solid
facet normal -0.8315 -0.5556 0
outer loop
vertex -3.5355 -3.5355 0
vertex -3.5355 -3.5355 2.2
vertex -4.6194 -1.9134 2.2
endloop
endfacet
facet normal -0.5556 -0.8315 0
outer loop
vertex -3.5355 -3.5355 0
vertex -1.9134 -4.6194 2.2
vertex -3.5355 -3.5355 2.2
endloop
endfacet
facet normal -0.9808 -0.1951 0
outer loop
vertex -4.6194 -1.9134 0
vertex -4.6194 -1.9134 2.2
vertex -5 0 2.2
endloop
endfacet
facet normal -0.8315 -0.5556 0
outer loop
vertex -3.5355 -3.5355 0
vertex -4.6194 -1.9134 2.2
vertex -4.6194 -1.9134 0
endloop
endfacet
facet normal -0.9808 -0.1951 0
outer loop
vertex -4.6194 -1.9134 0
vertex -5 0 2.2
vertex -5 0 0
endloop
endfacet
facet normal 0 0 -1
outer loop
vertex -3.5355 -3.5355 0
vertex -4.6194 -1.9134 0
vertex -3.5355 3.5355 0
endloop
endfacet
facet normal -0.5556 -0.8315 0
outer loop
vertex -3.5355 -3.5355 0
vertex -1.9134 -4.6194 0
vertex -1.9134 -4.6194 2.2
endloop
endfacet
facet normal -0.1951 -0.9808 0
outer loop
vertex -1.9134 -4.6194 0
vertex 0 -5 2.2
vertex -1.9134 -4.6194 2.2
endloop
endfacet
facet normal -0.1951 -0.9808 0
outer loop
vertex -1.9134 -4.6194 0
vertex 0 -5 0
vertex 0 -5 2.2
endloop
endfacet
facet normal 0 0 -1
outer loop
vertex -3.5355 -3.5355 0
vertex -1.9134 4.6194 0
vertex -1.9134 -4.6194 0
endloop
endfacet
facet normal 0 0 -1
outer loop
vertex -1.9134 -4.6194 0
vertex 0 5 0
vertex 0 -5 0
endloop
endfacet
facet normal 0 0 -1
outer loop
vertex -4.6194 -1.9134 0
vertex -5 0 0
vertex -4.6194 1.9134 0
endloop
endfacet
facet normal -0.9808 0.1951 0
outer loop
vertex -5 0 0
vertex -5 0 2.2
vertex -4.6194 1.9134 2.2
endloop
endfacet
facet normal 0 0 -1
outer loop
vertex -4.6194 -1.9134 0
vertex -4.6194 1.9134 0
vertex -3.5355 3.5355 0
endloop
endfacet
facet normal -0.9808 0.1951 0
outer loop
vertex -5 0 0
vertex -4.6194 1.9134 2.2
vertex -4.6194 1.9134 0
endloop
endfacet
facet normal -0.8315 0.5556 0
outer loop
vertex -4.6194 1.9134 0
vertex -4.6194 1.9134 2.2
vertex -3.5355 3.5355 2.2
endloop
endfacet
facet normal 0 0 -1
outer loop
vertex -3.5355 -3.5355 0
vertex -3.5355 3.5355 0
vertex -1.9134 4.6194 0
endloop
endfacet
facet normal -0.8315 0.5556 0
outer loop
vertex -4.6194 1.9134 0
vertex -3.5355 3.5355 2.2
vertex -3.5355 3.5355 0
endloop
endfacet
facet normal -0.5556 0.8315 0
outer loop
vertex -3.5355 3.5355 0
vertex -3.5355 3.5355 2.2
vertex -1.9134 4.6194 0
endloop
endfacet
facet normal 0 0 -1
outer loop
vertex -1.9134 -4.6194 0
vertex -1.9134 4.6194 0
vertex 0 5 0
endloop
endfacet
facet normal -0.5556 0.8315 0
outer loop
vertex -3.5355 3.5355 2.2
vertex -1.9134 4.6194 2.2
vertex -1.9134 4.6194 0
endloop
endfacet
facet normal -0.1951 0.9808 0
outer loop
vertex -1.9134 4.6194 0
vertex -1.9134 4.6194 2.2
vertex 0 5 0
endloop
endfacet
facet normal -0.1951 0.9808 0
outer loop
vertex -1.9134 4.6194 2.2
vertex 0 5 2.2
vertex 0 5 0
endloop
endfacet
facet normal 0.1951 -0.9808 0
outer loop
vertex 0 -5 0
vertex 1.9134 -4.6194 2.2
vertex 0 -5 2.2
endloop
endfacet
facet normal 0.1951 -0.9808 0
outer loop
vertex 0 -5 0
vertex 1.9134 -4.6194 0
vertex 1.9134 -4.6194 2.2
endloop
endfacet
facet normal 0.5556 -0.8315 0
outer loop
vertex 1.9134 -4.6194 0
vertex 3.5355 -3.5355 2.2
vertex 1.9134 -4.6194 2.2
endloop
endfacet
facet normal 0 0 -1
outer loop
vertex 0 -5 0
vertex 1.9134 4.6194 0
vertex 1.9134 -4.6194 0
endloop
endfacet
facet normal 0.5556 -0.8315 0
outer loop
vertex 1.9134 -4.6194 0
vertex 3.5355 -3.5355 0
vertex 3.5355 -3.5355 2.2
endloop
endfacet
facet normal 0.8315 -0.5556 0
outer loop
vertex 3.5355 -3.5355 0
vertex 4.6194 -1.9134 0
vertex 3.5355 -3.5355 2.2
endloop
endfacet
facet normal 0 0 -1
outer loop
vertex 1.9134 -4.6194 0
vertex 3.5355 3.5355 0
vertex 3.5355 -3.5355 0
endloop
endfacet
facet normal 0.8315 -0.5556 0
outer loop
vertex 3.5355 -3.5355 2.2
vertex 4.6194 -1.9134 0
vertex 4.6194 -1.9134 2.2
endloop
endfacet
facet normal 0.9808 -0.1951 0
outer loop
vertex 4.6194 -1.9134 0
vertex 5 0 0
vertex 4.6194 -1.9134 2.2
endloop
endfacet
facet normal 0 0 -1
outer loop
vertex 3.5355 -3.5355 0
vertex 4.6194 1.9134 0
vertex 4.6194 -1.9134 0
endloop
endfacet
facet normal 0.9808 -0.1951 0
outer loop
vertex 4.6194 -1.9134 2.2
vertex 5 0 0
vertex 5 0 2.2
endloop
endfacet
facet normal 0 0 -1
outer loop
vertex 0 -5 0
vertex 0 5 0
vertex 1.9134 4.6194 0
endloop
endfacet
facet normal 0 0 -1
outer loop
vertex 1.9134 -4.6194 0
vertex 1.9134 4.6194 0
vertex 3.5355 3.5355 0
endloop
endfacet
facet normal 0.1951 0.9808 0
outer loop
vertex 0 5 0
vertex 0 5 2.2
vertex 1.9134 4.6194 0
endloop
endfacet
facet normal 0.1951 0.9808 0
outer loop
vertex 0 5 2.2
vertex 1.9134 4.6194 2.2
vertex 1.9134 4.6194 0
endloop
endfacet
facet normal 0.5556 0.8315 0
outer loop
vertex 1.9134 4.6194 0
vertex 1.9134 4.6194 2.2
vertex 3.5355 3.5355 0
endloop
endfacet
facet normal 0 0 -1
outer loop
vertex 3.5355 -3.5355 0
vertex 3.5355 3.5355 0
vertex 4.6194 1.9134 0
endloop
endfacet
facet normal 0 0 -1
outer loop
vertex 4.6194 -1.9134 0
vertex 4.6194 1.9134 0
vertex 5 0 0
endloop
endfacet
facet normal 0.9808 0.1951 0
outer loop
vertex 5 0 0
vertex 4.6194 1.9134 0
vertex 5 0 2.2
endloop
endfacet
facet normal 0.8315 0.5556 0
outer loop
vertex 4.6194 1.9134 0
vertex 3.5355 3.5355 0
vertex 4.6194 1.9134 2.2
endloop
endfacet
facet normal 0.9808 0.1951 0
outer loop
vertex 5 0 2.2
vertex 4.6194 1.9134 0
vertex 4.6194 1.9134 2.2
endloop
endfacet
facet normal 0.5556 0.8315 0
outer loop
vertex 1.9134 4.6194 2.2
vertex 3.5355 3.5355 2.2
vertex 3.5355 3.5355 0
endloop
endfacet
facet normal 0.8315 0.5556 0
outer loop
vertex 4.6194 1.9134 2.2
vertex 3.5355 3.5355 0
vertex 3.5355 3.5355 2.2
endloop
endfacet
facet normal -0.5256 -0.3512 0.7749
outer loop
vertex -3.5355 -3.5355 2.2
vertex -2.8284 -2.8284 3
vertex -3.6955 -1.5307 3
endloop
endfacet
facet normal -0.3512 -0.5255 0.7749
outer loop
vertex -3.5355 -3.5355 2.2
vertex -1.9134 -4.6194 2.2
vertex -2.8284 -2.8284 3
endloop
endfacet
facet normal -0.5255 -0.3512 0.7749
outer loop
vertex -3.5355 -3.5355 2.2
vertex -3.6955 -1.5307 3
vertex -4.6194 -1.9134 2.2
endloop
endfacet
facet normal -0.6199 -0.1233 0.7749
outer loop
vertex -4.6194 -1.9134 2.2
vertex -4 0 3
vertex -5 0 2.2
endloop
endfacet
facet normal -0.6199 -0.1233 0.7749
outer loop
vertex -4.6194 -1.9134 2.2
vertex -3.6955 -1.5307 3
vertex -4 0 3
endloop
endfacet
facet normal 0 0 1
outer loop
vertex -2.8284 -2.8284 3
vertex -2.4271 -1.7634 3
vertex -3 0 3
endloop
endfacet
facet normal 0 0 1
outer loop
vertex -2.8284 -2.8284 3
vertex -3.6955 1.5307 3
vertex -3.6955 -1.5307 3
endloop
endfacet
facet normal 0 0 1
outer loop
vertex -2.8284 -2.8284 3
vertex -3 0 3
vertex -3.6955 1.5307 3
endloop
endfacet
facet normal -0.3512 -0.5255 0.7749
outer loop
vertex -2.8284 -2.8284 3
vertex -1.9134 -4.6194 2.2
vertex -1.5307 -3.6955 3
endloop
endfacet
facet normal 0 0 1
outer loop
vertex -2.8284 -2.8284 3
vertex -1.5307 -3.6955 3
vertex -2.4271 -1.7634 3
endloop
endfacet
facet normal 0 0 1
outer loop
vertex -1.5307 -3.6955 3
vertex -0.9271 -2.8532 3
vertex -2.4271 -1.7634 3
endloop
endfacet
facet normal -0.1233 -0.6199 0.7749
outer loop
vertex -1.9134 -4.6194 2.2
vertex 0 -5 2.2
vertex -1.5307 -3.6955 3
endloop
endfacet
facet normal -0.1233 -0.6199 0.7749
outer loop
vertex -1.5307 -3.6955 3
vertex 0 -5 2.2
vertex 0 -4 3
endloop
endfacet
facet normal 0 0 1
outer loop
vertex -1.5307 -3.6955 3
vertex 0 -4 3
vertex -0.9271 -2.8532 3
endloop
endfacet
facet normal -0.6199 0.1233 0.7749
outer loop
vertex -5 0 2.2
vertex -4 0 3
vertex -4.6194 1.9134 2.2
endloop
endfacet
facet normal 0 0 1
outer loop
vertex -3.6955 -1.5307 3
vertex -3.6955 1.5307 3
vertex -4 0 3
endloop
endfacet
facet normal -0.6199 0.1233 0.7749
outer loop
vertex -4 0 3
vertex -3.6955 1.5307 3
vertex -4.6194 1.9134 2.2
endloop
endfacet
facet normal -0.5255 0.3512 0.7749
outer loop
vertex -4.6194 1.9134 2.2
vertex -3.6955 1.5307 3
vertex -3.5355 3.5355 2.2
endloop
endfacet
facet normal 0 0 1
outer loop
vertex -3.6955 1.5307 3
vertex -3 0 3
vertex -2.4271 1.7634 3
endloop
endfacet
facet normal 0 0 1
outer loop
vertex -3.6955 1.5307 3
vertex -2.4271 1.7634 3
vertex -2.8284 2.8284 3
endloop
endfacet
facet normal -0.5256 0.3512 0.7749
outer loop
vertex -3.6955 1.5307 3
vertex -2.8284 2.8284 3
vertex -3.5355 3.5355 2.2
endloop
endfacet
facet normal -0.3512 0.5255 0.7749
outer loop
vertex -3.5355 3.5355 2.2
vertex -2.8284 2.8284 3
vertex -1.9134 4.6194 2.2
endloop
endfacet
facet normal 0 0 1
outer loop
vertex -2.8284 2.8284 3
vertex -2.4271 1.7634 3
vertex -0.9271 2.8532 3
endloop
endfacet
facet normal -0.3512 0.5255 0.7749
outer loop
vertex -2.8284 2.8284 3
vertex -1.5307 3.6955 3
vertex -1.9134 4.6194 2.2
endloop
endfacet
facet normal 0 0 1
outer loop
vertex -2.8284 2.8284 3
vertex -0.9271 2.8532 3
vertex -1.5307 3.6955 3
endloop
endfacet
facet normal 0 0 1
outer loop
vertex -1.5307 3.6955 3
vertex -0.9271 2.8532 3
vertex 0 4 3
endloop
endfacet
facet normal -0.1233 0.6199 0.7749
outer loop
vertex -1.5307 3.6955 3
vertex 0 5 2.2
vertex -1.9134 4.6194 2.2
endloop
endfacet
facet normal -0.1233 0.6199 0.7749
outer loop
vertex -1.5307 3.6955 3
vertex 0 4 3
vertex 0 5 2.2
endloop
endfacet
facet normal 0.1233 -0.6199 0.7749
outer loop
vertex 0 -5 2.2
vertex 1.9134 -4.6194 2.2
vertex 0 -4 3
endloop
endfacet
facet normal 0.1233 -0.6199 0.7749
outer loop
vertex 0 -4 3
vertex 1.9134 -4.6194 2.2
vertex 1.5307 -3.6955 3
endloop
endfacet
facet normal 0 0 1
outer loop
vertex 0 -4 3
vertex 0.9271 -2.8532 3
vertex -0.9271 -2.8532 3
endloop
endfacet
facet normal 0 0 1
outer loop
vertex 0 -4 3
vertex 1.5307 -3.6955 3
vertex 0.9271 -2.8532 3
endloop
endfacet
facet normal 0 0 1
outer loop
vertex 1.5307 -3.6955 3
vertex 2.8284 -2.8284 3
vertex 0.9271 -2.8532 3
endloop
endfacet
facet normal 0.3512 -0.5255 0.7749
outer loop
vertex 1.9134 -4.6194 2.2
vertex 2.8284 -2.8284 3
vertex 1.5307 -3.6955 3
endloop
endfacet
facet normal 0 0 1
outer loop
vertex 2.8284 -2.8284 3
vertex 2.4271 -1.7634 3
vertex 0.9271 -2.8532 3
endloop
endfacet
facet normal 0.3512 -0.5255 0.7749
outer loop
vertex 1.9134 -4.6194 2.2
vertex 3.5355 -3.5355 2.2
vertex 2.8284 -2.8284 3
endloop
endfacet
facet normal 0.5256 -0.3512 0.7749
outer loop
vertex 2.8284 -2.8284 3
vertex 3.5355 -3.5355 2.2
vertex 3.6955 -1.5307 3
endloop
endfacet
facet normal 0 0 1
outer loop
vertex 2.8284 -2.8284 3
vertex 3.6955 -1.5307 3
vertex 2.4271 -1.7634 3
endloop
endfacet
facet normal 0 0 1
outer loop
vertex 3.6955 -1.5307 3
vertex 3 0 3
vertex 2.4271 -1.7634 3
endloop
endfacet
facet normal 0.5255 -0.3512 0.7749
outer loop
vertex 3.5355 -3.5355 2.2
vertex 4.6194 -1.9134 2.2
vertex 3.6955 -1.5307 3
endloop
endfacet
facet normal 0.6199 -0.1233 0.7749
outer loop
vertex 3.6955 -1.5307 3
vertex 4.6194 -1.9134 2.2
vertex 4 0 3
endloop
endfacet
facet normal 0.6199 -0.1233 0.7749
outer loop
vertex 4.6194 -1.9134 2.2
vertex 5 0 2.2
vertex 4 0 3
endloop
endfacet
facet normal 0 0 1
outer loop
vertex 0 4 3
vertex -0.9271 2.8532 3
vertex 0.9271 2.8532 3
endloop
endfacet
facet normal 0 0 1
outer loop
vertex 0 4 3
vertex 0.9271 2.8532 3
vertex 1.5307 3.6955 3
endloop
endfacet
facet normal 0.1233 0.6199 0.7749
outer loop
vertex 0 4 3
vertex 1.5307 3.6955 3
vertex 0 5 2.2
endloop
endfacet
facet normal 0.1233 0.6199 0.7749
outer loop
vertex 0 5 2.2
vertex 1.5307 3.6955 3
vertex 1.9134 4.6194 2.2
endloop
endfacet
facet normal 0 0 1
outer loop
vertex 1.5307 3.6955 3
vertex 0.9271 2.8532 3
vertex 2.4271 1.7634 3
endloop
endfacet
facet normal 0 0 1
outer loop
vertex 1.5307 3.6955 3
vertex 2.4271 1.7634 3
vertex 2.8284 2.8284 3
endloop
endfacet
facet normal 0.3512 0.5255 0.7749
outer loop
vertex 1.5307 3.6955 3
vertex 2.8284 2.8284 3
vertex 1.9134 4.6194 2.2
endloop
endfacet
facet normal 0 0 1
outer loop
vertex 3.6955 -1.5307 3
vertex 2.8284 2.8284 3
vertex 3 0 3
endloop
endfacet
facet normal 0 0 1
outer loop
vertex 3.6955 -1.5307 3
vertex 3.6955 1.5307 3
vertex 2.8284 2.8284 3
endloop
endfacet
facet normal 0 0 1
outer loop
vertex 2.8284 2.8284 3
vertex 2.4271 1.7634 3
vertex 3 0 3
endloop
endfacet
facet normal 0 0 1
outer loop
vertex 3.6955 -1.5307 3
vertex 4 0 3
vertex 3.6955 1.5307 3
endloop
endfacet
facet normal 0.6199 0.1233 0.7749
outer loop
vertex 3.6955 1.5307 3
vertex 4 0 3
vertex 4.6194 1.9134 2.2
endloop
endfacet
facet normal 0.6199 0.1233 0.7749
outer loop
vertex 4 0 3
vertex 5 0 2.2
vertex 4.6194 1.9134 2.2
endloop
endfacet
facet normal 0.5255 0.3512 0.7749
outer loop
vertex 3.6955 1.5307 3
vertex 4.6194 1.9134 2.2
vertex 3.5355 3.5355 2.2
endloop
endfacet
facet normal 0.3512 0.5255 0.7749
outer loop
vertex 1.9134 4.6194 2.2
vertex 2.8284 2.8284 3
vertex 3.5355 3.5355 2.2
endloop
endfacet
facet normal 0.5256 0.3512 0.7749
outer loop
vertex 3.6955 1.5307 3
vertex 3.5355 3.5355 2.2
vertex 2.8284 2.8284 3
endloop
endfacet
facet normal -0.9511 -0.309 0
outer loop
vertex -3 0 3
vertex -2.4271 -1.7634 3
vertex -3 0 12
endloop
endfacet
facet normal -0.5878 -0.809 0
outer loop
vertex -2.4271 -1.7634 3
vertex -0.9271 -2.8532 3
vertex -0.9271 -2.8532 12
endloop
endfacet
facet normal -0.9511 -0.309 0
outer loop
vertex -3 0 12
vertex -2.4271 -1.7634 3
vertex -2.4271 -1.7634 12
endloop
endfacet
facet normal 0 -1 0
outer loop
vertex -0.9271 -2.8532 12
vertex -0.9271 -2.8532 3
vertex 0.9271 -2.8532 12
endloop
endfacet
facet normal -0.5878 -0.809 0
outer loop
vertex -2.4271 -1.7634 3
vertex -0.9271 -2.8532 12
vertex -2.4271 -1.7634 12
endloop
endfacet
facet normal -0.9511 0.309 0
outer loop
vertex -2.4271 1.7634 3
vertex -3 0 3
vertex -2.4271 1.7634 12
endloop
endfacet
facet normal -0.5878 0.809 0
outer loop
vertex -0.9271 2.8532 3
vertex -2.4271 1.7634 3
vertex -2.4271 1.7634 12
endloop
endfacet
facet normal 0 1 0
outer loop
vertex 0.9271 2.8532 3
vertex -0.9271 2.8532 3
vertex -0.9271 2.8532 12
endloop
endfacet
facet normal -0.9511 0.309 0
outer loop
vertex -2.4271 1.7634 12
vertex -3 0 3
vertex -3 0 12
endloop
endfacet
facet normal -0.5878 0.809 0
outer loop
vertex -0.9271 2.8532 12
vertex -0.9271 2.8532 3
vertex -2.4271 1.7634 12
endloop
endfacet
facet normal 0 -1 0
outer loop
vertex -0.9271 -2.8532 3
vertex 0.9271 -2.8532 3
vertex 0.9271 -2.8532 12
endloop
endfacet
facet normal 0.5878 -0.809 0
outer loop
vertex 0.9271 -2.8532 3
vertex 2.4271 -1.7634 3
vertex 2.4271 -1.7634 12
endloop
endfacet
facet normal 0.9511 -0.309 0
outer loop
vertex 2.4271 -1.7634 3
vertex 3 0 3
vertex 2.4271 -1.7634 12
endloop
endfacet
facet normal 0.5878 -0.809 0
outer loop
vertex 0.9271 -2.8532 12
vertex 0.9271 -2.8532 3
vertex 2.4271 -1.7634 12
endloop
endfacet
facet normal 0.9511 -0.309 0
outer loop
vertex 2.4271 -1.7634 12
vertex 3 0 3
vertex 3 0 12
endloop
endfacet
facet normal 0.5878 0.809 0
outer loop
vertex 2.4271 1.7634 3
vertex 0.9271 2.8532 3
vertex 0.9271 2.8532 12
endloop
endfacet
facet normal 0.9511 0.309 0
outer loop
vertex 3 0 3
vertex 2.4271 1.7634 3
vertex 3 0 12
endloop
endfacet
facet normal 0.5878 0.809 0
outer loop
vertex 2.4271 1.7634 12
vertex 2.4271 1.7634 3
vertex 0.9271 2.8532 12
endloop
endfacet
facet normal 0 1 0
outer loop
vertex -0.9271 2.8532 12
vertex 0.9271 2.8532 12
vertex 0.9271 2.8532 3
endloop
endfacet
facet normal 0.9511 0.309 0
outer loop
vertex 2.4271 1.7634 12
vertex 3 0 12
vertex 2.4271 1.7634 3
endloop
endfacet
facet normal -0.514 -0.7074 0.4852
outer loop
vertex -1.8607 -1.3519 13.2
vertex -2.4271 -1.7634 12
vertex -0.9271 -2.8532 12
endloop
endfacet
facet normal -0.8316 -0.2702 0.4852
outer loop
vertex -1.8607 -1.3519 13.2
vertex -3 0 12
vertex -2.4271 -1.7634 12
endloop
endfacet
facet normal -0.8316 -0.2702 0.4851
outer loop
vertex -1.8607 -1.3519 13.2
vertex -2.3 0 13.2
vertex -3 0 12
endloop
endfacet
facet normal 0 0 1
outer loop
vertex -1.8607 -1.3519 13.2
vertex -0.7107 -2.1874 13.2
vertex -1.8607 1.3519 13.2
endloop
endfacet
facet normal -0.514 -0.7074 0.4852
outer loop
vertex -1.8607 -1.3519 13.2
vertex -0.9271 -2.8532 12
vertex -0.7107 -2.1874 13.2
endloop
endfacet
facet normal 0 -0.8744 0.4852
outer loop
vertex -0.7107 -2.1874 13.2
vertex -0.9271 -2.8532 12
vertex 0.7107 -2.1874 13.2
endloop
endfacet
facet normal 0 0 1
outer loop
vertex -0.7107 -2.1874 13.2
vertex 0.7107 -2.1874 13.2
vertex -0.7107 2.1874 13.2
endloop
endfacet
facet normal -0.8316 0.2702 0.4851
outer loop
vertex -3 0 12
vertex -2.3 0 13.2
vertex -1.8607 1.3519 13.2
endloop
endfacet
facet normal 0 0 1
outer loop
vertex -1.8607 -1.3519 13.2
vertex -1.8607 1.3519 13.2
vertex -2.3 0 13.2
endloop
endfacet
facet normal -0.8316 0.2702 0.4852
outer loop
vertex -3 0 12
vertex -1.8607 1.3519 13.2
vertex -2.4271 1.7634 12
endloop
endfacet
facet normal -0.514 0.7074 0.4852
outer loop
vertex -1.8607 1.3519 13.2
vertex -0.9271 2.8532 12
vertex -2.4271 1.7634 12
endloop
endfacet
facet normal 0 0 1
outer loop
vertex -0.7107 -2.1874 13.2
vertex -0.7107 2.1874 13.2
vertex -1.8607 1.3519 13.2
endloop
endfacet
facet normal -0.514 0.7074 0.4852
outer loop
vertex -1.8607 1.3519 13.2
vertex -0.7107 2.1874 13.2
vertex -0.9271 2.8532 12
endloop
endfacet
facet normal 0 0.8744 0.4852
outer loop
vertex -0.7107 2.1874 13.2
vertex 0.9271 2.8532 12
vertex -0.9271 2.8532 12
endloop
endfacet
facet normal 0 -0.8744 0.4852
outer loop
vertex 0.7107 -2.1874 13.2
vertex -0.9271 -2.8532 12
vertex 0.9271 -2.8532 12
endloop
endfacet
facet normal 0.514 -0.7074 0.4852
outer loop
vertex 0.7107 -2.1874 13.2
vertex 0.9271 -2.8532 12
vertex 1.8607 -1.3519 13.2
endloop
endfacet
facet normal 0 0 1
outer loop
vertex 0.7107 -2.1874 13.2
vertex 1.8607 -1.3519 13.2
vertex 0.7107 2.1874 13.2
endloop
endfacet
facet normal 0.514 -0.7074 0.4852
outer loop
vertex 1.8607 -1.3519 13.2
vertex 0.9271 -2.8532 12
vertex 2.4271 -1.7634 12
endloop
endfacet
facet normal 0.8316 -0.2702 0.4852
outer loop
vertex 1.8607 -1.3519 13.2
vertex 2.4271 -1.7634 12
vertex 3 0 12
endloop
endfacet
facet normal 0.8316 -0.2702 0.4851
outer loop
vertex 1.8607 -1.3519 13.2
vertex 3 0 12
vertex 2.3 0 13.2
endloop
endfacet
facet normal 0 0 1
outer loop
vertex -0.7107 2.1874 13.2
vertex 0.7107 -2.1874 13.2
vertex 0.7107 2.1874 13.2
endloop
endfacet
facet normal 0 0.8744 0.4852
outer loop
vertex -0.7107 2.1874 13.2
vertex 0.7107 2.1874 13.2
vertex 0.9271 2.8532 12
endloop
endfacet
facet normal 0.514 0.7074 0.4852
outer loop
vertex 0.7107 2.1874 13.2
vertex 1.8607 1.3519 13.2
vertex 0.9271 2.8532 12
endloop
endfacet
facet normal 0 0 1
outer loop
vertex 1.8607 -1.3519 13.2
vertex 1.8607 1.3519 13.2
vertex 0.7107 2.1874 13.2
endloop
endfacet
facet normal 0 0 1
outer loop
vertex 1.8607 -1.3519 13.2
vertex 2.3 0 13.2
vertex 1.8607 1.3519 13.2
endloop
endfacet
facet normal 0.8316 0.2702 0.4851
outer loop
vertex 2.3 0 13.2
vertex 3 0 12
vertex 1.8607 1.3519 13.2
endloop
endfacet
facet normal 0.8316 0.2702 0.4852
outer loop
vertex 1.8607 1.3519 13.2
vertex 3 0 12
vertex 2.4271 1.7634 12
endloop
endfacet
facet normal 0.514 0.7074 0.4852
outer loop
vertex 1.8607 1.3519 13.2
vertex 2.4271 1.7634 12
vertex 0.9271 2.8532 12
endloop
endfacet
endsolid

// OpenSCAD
// file: params.scad
// ============================================================================
//  SHARED PARAMETERS — pegboard jig print set
//  10mm holes on a 50mm grid, 18mm plywood, first hole 25mm from each edge.
//  Include this file in every part so dimensions stay in sync.
// ============================================================================

pitch        = 50;    // [mm] grid spacing
hole_d       = 10;    // [mm] drilled hole / bit size (reference)
edge_offset  = 25;    // [mm] first hole centre from each edge
panel_t      = 18;    // [mm] plywood thickness (fence reach below z=0)

// Locating pins — drop into drilled holes. All pin parts print PINS-UP.
pin_d      = 9.8;     // snug in a 10mm hole (9.9 tighter, 9.5 looser)
pin_len    = 10;      // engagement depth
pin_embed  = 3;       // root embedded in the base
chamfer_h  = 1.2;
chamfer_d  = 0.7;

// Drill guides — 12mm OD / 10mm ID metal bush press fit
bush_hole_d  = 11.9;  // press-fit seat (11.7 tighter, 12.1 slip+glue)
bit_clear_d  = 10.4;  // 0.2mm/side clearance
bush_seat_h  = 8;
boss_od      = 24;
boss_h       = 8;

// Base plates
base_t       = 6;
margin       = boss_od / 2 + 6;   // plate margin around stations

// Fence joint — must match between plate notches and fence tabs
notch_d      = 8.4;
notch_w      = 12;
tab_w        = 10;
tab_t        = 4.4;
tab_z0       = 0.3;
tab_in       = 8;
tab_frac     = [0.18, 0.5, 0.82];
fence_t      = 4;
fence_top    = 14;
clamp_gap    = 25;
edge_margin  = 15;
clamp_hole_d = 6;

// Edge rounding — plan-view corner radius, helps high-speed printing
corner_r     = 6;      // [mm] on plates / rib frames
corner_r_s   = 3;      // [mm] on small parts (carriage, inserts)
edge_break   = 0.8;    // [mm] small chamfer on exposed vertical-part edges

// Fence→plate screws — horizontal M3 self-tappers through the fence
// wall into the plate edge band, in the solid gaps between notches.
// Shared by plate (pilot) and fence (through) so positions always match.
screw_d       = 3;      // [mm] M3
screw_clear   = 3.4;    // through-hole Ø in the fence wall
screw_pilot   = 2.4;    // pilot hole Ø into the plate edge
screw_depth   = 9.5;    // pilot depth — stays inside the 10mm border band
screw_z       = 3;      // hole centre height (mid plate thickness)
screw_min_gap = 10;     // smallest solid edge interval that takes a screw

// Solid intervals along a fence edge = reach minus the notch pockets.
// Returns centre positions for the screw holes (same on both parts).
function screw_stations(reach, tab_pos) =
    let(
        flat   = [for (c = tab_pos, e = [-notch_w / 2, notch_w / 2]) c + e],
        bounds = concat([0], flat, [reach]),
        pairs  = [for (i = [0 : 2 : len(bounds) - 2])
                      [bounds[i], bounds[i + 1]]]
    )
    [for (p = pairs) if (p[1] - p[0] >= screw_min_gap)
        (p[0] + p[1]) / 2];
// main file
// ============================================================================
//  RAIL KEY — Proposal 4 lock peg (print 2)
//  Drops through the carriage lock hole into the rail detent.
//  PRINT: standing on the head. Tiny footprint — use a brim.
// ============================================================================
include <params.scad>

module rail_key() {
    cylinder(d = 10, h = 2.2);                     // finger head
    translate([0, 0, 2.2])
        cylinder(d1 = 10, d2 = 8, h = 0.8);        // edge break
    translate([0, 0, 3])
        cylinder(d = 6.0, h = 9);                // shaft into Ø6.2/6.3 holes
    translate([0, 0, 12])
        cylinder(d1 = 6.0, d2 = 4.6, h = 1.2);   // lead-in
}

rail_key();
